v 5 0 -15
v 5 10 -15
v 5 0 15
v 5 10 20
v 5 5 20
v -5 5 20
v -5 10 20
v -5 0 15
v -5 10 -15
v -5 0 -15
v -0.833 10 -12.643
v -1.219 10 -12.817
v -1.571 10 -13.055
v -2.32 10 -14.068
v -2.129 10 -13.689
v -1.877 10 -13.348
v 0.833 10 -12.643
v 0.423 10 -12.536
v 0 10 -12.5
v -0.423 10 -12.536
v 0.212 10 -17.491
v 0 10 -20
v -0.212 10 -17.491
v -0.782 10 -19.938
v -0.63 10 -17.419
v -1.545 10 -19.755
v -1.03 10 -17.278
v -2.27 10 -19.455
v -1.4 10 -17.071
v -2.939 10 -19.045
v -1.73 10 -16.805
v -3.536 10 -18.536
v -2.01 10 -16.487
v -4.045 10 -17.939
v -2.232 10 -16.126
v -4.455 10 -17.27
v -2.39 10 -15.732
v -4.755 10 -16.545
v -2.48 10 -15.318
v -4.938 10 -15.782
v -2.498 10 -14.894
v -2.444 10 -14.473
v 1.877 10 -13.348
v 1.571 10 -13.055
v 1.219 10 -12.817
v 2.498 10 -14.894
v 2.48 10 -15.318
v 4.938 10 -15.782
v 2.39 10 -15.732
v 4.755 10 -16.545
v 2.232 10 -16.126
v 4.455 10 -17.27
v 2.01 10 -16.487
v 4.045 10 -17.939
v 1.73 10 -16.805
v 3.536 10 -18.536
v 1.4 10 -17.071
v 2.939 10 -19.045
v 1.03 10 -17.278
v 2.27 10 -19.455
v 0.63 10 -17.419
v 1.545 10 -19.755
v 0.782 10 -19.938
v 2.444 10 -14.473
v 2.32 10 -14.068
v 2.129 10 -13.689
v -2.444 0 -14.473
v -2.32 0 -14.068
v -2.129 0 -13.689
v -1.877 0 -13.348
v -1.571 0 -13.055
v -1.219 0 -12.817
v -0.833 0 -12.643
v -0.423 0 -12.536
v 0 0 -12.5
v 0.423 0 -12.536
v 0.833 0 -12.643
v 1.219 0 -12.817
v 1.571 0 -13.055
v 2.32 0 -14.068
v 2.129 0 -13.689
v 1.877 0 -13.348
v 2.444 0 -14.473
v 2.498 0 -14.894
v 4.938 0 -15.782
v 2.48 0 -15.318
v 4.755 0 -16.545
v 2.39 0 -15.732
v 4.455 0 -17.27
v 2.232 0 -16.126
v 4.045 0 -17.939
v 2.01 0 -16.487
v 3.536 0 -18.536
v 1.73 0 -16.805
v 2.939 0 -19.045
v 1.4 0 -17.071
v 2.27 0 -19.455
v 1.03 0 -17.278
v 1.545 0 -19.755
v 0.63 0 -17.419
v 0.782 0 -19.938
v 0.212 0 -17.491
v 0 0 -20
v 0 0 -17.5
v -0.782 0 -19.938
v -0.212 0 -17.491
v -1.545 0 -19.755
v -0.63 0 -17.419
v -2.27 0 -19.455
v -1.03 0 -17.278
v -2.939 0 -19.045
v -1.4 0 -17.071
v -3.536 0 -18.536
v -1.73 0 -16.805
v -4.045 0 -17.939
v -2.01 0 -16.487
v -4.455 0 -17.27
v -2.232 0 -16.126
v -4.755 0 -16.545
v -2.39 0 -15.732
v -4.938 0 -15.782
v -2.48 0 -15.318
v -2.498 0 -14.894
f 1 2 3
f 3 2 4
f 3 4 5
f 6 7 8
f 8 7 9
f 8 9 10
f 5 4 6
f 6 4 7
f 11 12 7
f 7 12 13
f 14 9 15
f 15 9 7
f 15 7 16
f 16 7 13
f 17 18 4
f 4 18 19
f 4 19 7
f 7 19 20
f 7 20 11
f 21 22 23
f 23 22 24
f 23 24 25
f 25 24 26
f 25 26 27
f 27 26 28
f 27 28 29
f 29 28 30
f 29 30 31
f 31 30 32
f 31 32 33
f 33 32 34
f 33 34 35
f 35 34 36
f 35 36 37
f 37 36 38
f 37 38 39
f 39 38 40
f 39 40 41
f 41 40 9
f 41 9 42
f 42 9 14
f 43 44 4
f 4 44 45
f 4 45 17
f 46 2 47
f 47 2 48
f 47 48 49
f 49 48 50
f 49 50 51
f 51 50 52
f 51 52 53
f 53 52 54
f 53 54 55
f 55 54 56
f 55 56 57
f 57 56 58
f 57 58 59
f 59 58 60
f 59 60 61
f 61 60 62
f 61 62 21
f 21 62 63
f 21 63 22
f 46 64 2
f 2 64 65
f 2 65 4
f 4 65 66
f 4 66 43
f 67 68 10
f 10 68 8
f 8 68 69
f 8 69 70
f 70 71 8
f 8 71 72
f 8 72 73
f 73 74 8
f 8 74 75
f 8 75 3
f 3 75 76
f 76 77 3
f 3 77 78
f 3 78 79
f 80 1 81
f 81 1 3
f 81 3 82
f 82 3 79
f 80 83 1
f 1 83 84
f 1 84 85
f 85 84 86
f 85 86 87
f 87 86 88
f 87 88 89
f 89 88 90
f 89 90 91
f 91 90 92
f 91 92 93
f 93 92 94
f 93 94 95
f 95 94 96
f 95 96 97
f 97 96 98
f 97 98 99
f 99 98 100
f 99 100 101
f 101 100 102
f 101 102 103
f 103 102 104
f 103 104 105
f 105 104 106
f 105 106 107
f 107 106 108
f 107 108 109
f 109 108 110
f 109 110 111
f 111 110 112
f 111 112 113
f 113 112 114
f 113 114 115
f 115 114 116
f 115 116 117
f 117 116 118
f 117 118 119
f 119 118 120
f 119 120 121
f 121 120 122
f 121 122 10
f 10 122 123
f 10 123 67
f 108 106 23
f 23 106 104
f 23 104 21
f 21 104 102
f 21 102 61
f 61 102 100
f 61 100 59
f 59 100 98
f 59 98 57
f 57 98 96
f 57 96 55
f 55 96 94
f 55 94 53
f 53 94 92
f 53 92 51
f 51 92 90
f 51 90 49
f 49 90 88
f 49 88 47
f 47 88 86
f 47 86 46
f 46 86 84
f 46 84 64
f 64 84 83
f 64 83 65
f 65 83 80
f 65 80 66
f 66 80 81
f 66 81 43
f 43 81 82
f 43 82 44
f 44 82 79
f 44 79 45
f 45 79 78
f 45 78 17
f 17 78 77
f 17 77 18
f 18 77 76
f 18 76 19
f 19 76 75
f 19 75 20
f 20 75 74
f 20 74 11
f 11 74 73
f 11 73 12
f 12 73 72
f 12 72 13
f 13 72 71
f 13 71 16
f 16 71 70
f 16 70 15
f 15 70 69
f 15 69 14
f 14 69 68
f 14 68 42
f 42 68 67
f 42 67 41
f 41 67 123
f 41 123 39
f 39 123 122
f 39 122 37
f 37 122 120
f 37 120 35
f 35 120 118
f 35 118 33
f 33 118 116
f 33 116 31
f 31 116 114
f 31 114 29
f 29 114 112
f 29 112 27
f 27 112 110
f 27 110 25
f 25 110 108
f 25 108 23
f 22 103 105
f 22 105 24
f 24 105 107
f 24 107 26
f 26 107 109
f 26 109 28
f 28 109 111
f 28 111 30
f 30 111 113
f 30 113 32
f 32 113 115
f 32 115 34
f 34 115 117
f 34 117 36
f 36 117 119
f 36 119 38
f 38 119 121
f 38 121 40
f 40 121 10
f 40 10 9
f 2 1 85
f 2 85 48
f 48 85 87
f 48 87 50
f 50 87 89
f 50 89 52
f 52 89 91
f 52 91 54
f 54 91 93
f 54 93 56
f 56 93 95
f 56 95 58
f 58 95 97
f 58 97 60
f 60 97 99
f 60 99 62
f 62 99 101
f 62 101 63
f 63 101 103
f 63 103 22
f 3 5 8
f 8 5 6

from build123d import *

# Parameters (mm, degrees)
SKETCH1_W             = 10
SKETCH1_H             = 40
BOSS_EXTRUDE1_DEPTH   = 10
F_5_0MM_DOWEL_HOLE1_D = 5
FILLET1_R             = 5
CHAMFER1_SIZE         = 5


with BuildPart() as part:
    # Sketch1 → Boss-Extrude1 (new body)
    with BuildSketch(Plane(origin=(0, 0, 0), x_dir=(1, 0, 0), z_dir=(0, 1, 0))):
        Rectangle(SKETCH1_W, SKETCH1_H)
    extrude(amount=BOSS_EXTRUDE1_DEPTH)

    # Ø5.0mm Dowel Hole1 (through all)
    with Locations(Plane(origin=(0, 10, 0), x_dir=(1, 0, 0), z_dir=(0, 1, 0))):
        with Locations((0, 15)):
            Hole(F_5_0MM_DOWEL_HOLE1_D / 2)

    # Fillet1
    fillet1_edges = [part.edges().sort_by_distance(p)[0] for p in [
        (5, 5, -20),
        (-5, 5, -20),
    ]]
    fillet(fillet1_edges, radius=FILLET1_R - 0.0001)  # a hair under: the kernel refuses the full size

    # Chamfer1
    chamfer1_edges = [part.edges().sort_by_distance(p)[0] for p in [
        (0, 0, 20),
    ]]
    chamfer(chamfer1_edges, length=CHAMFER1_SIZE)


solid = part.part
